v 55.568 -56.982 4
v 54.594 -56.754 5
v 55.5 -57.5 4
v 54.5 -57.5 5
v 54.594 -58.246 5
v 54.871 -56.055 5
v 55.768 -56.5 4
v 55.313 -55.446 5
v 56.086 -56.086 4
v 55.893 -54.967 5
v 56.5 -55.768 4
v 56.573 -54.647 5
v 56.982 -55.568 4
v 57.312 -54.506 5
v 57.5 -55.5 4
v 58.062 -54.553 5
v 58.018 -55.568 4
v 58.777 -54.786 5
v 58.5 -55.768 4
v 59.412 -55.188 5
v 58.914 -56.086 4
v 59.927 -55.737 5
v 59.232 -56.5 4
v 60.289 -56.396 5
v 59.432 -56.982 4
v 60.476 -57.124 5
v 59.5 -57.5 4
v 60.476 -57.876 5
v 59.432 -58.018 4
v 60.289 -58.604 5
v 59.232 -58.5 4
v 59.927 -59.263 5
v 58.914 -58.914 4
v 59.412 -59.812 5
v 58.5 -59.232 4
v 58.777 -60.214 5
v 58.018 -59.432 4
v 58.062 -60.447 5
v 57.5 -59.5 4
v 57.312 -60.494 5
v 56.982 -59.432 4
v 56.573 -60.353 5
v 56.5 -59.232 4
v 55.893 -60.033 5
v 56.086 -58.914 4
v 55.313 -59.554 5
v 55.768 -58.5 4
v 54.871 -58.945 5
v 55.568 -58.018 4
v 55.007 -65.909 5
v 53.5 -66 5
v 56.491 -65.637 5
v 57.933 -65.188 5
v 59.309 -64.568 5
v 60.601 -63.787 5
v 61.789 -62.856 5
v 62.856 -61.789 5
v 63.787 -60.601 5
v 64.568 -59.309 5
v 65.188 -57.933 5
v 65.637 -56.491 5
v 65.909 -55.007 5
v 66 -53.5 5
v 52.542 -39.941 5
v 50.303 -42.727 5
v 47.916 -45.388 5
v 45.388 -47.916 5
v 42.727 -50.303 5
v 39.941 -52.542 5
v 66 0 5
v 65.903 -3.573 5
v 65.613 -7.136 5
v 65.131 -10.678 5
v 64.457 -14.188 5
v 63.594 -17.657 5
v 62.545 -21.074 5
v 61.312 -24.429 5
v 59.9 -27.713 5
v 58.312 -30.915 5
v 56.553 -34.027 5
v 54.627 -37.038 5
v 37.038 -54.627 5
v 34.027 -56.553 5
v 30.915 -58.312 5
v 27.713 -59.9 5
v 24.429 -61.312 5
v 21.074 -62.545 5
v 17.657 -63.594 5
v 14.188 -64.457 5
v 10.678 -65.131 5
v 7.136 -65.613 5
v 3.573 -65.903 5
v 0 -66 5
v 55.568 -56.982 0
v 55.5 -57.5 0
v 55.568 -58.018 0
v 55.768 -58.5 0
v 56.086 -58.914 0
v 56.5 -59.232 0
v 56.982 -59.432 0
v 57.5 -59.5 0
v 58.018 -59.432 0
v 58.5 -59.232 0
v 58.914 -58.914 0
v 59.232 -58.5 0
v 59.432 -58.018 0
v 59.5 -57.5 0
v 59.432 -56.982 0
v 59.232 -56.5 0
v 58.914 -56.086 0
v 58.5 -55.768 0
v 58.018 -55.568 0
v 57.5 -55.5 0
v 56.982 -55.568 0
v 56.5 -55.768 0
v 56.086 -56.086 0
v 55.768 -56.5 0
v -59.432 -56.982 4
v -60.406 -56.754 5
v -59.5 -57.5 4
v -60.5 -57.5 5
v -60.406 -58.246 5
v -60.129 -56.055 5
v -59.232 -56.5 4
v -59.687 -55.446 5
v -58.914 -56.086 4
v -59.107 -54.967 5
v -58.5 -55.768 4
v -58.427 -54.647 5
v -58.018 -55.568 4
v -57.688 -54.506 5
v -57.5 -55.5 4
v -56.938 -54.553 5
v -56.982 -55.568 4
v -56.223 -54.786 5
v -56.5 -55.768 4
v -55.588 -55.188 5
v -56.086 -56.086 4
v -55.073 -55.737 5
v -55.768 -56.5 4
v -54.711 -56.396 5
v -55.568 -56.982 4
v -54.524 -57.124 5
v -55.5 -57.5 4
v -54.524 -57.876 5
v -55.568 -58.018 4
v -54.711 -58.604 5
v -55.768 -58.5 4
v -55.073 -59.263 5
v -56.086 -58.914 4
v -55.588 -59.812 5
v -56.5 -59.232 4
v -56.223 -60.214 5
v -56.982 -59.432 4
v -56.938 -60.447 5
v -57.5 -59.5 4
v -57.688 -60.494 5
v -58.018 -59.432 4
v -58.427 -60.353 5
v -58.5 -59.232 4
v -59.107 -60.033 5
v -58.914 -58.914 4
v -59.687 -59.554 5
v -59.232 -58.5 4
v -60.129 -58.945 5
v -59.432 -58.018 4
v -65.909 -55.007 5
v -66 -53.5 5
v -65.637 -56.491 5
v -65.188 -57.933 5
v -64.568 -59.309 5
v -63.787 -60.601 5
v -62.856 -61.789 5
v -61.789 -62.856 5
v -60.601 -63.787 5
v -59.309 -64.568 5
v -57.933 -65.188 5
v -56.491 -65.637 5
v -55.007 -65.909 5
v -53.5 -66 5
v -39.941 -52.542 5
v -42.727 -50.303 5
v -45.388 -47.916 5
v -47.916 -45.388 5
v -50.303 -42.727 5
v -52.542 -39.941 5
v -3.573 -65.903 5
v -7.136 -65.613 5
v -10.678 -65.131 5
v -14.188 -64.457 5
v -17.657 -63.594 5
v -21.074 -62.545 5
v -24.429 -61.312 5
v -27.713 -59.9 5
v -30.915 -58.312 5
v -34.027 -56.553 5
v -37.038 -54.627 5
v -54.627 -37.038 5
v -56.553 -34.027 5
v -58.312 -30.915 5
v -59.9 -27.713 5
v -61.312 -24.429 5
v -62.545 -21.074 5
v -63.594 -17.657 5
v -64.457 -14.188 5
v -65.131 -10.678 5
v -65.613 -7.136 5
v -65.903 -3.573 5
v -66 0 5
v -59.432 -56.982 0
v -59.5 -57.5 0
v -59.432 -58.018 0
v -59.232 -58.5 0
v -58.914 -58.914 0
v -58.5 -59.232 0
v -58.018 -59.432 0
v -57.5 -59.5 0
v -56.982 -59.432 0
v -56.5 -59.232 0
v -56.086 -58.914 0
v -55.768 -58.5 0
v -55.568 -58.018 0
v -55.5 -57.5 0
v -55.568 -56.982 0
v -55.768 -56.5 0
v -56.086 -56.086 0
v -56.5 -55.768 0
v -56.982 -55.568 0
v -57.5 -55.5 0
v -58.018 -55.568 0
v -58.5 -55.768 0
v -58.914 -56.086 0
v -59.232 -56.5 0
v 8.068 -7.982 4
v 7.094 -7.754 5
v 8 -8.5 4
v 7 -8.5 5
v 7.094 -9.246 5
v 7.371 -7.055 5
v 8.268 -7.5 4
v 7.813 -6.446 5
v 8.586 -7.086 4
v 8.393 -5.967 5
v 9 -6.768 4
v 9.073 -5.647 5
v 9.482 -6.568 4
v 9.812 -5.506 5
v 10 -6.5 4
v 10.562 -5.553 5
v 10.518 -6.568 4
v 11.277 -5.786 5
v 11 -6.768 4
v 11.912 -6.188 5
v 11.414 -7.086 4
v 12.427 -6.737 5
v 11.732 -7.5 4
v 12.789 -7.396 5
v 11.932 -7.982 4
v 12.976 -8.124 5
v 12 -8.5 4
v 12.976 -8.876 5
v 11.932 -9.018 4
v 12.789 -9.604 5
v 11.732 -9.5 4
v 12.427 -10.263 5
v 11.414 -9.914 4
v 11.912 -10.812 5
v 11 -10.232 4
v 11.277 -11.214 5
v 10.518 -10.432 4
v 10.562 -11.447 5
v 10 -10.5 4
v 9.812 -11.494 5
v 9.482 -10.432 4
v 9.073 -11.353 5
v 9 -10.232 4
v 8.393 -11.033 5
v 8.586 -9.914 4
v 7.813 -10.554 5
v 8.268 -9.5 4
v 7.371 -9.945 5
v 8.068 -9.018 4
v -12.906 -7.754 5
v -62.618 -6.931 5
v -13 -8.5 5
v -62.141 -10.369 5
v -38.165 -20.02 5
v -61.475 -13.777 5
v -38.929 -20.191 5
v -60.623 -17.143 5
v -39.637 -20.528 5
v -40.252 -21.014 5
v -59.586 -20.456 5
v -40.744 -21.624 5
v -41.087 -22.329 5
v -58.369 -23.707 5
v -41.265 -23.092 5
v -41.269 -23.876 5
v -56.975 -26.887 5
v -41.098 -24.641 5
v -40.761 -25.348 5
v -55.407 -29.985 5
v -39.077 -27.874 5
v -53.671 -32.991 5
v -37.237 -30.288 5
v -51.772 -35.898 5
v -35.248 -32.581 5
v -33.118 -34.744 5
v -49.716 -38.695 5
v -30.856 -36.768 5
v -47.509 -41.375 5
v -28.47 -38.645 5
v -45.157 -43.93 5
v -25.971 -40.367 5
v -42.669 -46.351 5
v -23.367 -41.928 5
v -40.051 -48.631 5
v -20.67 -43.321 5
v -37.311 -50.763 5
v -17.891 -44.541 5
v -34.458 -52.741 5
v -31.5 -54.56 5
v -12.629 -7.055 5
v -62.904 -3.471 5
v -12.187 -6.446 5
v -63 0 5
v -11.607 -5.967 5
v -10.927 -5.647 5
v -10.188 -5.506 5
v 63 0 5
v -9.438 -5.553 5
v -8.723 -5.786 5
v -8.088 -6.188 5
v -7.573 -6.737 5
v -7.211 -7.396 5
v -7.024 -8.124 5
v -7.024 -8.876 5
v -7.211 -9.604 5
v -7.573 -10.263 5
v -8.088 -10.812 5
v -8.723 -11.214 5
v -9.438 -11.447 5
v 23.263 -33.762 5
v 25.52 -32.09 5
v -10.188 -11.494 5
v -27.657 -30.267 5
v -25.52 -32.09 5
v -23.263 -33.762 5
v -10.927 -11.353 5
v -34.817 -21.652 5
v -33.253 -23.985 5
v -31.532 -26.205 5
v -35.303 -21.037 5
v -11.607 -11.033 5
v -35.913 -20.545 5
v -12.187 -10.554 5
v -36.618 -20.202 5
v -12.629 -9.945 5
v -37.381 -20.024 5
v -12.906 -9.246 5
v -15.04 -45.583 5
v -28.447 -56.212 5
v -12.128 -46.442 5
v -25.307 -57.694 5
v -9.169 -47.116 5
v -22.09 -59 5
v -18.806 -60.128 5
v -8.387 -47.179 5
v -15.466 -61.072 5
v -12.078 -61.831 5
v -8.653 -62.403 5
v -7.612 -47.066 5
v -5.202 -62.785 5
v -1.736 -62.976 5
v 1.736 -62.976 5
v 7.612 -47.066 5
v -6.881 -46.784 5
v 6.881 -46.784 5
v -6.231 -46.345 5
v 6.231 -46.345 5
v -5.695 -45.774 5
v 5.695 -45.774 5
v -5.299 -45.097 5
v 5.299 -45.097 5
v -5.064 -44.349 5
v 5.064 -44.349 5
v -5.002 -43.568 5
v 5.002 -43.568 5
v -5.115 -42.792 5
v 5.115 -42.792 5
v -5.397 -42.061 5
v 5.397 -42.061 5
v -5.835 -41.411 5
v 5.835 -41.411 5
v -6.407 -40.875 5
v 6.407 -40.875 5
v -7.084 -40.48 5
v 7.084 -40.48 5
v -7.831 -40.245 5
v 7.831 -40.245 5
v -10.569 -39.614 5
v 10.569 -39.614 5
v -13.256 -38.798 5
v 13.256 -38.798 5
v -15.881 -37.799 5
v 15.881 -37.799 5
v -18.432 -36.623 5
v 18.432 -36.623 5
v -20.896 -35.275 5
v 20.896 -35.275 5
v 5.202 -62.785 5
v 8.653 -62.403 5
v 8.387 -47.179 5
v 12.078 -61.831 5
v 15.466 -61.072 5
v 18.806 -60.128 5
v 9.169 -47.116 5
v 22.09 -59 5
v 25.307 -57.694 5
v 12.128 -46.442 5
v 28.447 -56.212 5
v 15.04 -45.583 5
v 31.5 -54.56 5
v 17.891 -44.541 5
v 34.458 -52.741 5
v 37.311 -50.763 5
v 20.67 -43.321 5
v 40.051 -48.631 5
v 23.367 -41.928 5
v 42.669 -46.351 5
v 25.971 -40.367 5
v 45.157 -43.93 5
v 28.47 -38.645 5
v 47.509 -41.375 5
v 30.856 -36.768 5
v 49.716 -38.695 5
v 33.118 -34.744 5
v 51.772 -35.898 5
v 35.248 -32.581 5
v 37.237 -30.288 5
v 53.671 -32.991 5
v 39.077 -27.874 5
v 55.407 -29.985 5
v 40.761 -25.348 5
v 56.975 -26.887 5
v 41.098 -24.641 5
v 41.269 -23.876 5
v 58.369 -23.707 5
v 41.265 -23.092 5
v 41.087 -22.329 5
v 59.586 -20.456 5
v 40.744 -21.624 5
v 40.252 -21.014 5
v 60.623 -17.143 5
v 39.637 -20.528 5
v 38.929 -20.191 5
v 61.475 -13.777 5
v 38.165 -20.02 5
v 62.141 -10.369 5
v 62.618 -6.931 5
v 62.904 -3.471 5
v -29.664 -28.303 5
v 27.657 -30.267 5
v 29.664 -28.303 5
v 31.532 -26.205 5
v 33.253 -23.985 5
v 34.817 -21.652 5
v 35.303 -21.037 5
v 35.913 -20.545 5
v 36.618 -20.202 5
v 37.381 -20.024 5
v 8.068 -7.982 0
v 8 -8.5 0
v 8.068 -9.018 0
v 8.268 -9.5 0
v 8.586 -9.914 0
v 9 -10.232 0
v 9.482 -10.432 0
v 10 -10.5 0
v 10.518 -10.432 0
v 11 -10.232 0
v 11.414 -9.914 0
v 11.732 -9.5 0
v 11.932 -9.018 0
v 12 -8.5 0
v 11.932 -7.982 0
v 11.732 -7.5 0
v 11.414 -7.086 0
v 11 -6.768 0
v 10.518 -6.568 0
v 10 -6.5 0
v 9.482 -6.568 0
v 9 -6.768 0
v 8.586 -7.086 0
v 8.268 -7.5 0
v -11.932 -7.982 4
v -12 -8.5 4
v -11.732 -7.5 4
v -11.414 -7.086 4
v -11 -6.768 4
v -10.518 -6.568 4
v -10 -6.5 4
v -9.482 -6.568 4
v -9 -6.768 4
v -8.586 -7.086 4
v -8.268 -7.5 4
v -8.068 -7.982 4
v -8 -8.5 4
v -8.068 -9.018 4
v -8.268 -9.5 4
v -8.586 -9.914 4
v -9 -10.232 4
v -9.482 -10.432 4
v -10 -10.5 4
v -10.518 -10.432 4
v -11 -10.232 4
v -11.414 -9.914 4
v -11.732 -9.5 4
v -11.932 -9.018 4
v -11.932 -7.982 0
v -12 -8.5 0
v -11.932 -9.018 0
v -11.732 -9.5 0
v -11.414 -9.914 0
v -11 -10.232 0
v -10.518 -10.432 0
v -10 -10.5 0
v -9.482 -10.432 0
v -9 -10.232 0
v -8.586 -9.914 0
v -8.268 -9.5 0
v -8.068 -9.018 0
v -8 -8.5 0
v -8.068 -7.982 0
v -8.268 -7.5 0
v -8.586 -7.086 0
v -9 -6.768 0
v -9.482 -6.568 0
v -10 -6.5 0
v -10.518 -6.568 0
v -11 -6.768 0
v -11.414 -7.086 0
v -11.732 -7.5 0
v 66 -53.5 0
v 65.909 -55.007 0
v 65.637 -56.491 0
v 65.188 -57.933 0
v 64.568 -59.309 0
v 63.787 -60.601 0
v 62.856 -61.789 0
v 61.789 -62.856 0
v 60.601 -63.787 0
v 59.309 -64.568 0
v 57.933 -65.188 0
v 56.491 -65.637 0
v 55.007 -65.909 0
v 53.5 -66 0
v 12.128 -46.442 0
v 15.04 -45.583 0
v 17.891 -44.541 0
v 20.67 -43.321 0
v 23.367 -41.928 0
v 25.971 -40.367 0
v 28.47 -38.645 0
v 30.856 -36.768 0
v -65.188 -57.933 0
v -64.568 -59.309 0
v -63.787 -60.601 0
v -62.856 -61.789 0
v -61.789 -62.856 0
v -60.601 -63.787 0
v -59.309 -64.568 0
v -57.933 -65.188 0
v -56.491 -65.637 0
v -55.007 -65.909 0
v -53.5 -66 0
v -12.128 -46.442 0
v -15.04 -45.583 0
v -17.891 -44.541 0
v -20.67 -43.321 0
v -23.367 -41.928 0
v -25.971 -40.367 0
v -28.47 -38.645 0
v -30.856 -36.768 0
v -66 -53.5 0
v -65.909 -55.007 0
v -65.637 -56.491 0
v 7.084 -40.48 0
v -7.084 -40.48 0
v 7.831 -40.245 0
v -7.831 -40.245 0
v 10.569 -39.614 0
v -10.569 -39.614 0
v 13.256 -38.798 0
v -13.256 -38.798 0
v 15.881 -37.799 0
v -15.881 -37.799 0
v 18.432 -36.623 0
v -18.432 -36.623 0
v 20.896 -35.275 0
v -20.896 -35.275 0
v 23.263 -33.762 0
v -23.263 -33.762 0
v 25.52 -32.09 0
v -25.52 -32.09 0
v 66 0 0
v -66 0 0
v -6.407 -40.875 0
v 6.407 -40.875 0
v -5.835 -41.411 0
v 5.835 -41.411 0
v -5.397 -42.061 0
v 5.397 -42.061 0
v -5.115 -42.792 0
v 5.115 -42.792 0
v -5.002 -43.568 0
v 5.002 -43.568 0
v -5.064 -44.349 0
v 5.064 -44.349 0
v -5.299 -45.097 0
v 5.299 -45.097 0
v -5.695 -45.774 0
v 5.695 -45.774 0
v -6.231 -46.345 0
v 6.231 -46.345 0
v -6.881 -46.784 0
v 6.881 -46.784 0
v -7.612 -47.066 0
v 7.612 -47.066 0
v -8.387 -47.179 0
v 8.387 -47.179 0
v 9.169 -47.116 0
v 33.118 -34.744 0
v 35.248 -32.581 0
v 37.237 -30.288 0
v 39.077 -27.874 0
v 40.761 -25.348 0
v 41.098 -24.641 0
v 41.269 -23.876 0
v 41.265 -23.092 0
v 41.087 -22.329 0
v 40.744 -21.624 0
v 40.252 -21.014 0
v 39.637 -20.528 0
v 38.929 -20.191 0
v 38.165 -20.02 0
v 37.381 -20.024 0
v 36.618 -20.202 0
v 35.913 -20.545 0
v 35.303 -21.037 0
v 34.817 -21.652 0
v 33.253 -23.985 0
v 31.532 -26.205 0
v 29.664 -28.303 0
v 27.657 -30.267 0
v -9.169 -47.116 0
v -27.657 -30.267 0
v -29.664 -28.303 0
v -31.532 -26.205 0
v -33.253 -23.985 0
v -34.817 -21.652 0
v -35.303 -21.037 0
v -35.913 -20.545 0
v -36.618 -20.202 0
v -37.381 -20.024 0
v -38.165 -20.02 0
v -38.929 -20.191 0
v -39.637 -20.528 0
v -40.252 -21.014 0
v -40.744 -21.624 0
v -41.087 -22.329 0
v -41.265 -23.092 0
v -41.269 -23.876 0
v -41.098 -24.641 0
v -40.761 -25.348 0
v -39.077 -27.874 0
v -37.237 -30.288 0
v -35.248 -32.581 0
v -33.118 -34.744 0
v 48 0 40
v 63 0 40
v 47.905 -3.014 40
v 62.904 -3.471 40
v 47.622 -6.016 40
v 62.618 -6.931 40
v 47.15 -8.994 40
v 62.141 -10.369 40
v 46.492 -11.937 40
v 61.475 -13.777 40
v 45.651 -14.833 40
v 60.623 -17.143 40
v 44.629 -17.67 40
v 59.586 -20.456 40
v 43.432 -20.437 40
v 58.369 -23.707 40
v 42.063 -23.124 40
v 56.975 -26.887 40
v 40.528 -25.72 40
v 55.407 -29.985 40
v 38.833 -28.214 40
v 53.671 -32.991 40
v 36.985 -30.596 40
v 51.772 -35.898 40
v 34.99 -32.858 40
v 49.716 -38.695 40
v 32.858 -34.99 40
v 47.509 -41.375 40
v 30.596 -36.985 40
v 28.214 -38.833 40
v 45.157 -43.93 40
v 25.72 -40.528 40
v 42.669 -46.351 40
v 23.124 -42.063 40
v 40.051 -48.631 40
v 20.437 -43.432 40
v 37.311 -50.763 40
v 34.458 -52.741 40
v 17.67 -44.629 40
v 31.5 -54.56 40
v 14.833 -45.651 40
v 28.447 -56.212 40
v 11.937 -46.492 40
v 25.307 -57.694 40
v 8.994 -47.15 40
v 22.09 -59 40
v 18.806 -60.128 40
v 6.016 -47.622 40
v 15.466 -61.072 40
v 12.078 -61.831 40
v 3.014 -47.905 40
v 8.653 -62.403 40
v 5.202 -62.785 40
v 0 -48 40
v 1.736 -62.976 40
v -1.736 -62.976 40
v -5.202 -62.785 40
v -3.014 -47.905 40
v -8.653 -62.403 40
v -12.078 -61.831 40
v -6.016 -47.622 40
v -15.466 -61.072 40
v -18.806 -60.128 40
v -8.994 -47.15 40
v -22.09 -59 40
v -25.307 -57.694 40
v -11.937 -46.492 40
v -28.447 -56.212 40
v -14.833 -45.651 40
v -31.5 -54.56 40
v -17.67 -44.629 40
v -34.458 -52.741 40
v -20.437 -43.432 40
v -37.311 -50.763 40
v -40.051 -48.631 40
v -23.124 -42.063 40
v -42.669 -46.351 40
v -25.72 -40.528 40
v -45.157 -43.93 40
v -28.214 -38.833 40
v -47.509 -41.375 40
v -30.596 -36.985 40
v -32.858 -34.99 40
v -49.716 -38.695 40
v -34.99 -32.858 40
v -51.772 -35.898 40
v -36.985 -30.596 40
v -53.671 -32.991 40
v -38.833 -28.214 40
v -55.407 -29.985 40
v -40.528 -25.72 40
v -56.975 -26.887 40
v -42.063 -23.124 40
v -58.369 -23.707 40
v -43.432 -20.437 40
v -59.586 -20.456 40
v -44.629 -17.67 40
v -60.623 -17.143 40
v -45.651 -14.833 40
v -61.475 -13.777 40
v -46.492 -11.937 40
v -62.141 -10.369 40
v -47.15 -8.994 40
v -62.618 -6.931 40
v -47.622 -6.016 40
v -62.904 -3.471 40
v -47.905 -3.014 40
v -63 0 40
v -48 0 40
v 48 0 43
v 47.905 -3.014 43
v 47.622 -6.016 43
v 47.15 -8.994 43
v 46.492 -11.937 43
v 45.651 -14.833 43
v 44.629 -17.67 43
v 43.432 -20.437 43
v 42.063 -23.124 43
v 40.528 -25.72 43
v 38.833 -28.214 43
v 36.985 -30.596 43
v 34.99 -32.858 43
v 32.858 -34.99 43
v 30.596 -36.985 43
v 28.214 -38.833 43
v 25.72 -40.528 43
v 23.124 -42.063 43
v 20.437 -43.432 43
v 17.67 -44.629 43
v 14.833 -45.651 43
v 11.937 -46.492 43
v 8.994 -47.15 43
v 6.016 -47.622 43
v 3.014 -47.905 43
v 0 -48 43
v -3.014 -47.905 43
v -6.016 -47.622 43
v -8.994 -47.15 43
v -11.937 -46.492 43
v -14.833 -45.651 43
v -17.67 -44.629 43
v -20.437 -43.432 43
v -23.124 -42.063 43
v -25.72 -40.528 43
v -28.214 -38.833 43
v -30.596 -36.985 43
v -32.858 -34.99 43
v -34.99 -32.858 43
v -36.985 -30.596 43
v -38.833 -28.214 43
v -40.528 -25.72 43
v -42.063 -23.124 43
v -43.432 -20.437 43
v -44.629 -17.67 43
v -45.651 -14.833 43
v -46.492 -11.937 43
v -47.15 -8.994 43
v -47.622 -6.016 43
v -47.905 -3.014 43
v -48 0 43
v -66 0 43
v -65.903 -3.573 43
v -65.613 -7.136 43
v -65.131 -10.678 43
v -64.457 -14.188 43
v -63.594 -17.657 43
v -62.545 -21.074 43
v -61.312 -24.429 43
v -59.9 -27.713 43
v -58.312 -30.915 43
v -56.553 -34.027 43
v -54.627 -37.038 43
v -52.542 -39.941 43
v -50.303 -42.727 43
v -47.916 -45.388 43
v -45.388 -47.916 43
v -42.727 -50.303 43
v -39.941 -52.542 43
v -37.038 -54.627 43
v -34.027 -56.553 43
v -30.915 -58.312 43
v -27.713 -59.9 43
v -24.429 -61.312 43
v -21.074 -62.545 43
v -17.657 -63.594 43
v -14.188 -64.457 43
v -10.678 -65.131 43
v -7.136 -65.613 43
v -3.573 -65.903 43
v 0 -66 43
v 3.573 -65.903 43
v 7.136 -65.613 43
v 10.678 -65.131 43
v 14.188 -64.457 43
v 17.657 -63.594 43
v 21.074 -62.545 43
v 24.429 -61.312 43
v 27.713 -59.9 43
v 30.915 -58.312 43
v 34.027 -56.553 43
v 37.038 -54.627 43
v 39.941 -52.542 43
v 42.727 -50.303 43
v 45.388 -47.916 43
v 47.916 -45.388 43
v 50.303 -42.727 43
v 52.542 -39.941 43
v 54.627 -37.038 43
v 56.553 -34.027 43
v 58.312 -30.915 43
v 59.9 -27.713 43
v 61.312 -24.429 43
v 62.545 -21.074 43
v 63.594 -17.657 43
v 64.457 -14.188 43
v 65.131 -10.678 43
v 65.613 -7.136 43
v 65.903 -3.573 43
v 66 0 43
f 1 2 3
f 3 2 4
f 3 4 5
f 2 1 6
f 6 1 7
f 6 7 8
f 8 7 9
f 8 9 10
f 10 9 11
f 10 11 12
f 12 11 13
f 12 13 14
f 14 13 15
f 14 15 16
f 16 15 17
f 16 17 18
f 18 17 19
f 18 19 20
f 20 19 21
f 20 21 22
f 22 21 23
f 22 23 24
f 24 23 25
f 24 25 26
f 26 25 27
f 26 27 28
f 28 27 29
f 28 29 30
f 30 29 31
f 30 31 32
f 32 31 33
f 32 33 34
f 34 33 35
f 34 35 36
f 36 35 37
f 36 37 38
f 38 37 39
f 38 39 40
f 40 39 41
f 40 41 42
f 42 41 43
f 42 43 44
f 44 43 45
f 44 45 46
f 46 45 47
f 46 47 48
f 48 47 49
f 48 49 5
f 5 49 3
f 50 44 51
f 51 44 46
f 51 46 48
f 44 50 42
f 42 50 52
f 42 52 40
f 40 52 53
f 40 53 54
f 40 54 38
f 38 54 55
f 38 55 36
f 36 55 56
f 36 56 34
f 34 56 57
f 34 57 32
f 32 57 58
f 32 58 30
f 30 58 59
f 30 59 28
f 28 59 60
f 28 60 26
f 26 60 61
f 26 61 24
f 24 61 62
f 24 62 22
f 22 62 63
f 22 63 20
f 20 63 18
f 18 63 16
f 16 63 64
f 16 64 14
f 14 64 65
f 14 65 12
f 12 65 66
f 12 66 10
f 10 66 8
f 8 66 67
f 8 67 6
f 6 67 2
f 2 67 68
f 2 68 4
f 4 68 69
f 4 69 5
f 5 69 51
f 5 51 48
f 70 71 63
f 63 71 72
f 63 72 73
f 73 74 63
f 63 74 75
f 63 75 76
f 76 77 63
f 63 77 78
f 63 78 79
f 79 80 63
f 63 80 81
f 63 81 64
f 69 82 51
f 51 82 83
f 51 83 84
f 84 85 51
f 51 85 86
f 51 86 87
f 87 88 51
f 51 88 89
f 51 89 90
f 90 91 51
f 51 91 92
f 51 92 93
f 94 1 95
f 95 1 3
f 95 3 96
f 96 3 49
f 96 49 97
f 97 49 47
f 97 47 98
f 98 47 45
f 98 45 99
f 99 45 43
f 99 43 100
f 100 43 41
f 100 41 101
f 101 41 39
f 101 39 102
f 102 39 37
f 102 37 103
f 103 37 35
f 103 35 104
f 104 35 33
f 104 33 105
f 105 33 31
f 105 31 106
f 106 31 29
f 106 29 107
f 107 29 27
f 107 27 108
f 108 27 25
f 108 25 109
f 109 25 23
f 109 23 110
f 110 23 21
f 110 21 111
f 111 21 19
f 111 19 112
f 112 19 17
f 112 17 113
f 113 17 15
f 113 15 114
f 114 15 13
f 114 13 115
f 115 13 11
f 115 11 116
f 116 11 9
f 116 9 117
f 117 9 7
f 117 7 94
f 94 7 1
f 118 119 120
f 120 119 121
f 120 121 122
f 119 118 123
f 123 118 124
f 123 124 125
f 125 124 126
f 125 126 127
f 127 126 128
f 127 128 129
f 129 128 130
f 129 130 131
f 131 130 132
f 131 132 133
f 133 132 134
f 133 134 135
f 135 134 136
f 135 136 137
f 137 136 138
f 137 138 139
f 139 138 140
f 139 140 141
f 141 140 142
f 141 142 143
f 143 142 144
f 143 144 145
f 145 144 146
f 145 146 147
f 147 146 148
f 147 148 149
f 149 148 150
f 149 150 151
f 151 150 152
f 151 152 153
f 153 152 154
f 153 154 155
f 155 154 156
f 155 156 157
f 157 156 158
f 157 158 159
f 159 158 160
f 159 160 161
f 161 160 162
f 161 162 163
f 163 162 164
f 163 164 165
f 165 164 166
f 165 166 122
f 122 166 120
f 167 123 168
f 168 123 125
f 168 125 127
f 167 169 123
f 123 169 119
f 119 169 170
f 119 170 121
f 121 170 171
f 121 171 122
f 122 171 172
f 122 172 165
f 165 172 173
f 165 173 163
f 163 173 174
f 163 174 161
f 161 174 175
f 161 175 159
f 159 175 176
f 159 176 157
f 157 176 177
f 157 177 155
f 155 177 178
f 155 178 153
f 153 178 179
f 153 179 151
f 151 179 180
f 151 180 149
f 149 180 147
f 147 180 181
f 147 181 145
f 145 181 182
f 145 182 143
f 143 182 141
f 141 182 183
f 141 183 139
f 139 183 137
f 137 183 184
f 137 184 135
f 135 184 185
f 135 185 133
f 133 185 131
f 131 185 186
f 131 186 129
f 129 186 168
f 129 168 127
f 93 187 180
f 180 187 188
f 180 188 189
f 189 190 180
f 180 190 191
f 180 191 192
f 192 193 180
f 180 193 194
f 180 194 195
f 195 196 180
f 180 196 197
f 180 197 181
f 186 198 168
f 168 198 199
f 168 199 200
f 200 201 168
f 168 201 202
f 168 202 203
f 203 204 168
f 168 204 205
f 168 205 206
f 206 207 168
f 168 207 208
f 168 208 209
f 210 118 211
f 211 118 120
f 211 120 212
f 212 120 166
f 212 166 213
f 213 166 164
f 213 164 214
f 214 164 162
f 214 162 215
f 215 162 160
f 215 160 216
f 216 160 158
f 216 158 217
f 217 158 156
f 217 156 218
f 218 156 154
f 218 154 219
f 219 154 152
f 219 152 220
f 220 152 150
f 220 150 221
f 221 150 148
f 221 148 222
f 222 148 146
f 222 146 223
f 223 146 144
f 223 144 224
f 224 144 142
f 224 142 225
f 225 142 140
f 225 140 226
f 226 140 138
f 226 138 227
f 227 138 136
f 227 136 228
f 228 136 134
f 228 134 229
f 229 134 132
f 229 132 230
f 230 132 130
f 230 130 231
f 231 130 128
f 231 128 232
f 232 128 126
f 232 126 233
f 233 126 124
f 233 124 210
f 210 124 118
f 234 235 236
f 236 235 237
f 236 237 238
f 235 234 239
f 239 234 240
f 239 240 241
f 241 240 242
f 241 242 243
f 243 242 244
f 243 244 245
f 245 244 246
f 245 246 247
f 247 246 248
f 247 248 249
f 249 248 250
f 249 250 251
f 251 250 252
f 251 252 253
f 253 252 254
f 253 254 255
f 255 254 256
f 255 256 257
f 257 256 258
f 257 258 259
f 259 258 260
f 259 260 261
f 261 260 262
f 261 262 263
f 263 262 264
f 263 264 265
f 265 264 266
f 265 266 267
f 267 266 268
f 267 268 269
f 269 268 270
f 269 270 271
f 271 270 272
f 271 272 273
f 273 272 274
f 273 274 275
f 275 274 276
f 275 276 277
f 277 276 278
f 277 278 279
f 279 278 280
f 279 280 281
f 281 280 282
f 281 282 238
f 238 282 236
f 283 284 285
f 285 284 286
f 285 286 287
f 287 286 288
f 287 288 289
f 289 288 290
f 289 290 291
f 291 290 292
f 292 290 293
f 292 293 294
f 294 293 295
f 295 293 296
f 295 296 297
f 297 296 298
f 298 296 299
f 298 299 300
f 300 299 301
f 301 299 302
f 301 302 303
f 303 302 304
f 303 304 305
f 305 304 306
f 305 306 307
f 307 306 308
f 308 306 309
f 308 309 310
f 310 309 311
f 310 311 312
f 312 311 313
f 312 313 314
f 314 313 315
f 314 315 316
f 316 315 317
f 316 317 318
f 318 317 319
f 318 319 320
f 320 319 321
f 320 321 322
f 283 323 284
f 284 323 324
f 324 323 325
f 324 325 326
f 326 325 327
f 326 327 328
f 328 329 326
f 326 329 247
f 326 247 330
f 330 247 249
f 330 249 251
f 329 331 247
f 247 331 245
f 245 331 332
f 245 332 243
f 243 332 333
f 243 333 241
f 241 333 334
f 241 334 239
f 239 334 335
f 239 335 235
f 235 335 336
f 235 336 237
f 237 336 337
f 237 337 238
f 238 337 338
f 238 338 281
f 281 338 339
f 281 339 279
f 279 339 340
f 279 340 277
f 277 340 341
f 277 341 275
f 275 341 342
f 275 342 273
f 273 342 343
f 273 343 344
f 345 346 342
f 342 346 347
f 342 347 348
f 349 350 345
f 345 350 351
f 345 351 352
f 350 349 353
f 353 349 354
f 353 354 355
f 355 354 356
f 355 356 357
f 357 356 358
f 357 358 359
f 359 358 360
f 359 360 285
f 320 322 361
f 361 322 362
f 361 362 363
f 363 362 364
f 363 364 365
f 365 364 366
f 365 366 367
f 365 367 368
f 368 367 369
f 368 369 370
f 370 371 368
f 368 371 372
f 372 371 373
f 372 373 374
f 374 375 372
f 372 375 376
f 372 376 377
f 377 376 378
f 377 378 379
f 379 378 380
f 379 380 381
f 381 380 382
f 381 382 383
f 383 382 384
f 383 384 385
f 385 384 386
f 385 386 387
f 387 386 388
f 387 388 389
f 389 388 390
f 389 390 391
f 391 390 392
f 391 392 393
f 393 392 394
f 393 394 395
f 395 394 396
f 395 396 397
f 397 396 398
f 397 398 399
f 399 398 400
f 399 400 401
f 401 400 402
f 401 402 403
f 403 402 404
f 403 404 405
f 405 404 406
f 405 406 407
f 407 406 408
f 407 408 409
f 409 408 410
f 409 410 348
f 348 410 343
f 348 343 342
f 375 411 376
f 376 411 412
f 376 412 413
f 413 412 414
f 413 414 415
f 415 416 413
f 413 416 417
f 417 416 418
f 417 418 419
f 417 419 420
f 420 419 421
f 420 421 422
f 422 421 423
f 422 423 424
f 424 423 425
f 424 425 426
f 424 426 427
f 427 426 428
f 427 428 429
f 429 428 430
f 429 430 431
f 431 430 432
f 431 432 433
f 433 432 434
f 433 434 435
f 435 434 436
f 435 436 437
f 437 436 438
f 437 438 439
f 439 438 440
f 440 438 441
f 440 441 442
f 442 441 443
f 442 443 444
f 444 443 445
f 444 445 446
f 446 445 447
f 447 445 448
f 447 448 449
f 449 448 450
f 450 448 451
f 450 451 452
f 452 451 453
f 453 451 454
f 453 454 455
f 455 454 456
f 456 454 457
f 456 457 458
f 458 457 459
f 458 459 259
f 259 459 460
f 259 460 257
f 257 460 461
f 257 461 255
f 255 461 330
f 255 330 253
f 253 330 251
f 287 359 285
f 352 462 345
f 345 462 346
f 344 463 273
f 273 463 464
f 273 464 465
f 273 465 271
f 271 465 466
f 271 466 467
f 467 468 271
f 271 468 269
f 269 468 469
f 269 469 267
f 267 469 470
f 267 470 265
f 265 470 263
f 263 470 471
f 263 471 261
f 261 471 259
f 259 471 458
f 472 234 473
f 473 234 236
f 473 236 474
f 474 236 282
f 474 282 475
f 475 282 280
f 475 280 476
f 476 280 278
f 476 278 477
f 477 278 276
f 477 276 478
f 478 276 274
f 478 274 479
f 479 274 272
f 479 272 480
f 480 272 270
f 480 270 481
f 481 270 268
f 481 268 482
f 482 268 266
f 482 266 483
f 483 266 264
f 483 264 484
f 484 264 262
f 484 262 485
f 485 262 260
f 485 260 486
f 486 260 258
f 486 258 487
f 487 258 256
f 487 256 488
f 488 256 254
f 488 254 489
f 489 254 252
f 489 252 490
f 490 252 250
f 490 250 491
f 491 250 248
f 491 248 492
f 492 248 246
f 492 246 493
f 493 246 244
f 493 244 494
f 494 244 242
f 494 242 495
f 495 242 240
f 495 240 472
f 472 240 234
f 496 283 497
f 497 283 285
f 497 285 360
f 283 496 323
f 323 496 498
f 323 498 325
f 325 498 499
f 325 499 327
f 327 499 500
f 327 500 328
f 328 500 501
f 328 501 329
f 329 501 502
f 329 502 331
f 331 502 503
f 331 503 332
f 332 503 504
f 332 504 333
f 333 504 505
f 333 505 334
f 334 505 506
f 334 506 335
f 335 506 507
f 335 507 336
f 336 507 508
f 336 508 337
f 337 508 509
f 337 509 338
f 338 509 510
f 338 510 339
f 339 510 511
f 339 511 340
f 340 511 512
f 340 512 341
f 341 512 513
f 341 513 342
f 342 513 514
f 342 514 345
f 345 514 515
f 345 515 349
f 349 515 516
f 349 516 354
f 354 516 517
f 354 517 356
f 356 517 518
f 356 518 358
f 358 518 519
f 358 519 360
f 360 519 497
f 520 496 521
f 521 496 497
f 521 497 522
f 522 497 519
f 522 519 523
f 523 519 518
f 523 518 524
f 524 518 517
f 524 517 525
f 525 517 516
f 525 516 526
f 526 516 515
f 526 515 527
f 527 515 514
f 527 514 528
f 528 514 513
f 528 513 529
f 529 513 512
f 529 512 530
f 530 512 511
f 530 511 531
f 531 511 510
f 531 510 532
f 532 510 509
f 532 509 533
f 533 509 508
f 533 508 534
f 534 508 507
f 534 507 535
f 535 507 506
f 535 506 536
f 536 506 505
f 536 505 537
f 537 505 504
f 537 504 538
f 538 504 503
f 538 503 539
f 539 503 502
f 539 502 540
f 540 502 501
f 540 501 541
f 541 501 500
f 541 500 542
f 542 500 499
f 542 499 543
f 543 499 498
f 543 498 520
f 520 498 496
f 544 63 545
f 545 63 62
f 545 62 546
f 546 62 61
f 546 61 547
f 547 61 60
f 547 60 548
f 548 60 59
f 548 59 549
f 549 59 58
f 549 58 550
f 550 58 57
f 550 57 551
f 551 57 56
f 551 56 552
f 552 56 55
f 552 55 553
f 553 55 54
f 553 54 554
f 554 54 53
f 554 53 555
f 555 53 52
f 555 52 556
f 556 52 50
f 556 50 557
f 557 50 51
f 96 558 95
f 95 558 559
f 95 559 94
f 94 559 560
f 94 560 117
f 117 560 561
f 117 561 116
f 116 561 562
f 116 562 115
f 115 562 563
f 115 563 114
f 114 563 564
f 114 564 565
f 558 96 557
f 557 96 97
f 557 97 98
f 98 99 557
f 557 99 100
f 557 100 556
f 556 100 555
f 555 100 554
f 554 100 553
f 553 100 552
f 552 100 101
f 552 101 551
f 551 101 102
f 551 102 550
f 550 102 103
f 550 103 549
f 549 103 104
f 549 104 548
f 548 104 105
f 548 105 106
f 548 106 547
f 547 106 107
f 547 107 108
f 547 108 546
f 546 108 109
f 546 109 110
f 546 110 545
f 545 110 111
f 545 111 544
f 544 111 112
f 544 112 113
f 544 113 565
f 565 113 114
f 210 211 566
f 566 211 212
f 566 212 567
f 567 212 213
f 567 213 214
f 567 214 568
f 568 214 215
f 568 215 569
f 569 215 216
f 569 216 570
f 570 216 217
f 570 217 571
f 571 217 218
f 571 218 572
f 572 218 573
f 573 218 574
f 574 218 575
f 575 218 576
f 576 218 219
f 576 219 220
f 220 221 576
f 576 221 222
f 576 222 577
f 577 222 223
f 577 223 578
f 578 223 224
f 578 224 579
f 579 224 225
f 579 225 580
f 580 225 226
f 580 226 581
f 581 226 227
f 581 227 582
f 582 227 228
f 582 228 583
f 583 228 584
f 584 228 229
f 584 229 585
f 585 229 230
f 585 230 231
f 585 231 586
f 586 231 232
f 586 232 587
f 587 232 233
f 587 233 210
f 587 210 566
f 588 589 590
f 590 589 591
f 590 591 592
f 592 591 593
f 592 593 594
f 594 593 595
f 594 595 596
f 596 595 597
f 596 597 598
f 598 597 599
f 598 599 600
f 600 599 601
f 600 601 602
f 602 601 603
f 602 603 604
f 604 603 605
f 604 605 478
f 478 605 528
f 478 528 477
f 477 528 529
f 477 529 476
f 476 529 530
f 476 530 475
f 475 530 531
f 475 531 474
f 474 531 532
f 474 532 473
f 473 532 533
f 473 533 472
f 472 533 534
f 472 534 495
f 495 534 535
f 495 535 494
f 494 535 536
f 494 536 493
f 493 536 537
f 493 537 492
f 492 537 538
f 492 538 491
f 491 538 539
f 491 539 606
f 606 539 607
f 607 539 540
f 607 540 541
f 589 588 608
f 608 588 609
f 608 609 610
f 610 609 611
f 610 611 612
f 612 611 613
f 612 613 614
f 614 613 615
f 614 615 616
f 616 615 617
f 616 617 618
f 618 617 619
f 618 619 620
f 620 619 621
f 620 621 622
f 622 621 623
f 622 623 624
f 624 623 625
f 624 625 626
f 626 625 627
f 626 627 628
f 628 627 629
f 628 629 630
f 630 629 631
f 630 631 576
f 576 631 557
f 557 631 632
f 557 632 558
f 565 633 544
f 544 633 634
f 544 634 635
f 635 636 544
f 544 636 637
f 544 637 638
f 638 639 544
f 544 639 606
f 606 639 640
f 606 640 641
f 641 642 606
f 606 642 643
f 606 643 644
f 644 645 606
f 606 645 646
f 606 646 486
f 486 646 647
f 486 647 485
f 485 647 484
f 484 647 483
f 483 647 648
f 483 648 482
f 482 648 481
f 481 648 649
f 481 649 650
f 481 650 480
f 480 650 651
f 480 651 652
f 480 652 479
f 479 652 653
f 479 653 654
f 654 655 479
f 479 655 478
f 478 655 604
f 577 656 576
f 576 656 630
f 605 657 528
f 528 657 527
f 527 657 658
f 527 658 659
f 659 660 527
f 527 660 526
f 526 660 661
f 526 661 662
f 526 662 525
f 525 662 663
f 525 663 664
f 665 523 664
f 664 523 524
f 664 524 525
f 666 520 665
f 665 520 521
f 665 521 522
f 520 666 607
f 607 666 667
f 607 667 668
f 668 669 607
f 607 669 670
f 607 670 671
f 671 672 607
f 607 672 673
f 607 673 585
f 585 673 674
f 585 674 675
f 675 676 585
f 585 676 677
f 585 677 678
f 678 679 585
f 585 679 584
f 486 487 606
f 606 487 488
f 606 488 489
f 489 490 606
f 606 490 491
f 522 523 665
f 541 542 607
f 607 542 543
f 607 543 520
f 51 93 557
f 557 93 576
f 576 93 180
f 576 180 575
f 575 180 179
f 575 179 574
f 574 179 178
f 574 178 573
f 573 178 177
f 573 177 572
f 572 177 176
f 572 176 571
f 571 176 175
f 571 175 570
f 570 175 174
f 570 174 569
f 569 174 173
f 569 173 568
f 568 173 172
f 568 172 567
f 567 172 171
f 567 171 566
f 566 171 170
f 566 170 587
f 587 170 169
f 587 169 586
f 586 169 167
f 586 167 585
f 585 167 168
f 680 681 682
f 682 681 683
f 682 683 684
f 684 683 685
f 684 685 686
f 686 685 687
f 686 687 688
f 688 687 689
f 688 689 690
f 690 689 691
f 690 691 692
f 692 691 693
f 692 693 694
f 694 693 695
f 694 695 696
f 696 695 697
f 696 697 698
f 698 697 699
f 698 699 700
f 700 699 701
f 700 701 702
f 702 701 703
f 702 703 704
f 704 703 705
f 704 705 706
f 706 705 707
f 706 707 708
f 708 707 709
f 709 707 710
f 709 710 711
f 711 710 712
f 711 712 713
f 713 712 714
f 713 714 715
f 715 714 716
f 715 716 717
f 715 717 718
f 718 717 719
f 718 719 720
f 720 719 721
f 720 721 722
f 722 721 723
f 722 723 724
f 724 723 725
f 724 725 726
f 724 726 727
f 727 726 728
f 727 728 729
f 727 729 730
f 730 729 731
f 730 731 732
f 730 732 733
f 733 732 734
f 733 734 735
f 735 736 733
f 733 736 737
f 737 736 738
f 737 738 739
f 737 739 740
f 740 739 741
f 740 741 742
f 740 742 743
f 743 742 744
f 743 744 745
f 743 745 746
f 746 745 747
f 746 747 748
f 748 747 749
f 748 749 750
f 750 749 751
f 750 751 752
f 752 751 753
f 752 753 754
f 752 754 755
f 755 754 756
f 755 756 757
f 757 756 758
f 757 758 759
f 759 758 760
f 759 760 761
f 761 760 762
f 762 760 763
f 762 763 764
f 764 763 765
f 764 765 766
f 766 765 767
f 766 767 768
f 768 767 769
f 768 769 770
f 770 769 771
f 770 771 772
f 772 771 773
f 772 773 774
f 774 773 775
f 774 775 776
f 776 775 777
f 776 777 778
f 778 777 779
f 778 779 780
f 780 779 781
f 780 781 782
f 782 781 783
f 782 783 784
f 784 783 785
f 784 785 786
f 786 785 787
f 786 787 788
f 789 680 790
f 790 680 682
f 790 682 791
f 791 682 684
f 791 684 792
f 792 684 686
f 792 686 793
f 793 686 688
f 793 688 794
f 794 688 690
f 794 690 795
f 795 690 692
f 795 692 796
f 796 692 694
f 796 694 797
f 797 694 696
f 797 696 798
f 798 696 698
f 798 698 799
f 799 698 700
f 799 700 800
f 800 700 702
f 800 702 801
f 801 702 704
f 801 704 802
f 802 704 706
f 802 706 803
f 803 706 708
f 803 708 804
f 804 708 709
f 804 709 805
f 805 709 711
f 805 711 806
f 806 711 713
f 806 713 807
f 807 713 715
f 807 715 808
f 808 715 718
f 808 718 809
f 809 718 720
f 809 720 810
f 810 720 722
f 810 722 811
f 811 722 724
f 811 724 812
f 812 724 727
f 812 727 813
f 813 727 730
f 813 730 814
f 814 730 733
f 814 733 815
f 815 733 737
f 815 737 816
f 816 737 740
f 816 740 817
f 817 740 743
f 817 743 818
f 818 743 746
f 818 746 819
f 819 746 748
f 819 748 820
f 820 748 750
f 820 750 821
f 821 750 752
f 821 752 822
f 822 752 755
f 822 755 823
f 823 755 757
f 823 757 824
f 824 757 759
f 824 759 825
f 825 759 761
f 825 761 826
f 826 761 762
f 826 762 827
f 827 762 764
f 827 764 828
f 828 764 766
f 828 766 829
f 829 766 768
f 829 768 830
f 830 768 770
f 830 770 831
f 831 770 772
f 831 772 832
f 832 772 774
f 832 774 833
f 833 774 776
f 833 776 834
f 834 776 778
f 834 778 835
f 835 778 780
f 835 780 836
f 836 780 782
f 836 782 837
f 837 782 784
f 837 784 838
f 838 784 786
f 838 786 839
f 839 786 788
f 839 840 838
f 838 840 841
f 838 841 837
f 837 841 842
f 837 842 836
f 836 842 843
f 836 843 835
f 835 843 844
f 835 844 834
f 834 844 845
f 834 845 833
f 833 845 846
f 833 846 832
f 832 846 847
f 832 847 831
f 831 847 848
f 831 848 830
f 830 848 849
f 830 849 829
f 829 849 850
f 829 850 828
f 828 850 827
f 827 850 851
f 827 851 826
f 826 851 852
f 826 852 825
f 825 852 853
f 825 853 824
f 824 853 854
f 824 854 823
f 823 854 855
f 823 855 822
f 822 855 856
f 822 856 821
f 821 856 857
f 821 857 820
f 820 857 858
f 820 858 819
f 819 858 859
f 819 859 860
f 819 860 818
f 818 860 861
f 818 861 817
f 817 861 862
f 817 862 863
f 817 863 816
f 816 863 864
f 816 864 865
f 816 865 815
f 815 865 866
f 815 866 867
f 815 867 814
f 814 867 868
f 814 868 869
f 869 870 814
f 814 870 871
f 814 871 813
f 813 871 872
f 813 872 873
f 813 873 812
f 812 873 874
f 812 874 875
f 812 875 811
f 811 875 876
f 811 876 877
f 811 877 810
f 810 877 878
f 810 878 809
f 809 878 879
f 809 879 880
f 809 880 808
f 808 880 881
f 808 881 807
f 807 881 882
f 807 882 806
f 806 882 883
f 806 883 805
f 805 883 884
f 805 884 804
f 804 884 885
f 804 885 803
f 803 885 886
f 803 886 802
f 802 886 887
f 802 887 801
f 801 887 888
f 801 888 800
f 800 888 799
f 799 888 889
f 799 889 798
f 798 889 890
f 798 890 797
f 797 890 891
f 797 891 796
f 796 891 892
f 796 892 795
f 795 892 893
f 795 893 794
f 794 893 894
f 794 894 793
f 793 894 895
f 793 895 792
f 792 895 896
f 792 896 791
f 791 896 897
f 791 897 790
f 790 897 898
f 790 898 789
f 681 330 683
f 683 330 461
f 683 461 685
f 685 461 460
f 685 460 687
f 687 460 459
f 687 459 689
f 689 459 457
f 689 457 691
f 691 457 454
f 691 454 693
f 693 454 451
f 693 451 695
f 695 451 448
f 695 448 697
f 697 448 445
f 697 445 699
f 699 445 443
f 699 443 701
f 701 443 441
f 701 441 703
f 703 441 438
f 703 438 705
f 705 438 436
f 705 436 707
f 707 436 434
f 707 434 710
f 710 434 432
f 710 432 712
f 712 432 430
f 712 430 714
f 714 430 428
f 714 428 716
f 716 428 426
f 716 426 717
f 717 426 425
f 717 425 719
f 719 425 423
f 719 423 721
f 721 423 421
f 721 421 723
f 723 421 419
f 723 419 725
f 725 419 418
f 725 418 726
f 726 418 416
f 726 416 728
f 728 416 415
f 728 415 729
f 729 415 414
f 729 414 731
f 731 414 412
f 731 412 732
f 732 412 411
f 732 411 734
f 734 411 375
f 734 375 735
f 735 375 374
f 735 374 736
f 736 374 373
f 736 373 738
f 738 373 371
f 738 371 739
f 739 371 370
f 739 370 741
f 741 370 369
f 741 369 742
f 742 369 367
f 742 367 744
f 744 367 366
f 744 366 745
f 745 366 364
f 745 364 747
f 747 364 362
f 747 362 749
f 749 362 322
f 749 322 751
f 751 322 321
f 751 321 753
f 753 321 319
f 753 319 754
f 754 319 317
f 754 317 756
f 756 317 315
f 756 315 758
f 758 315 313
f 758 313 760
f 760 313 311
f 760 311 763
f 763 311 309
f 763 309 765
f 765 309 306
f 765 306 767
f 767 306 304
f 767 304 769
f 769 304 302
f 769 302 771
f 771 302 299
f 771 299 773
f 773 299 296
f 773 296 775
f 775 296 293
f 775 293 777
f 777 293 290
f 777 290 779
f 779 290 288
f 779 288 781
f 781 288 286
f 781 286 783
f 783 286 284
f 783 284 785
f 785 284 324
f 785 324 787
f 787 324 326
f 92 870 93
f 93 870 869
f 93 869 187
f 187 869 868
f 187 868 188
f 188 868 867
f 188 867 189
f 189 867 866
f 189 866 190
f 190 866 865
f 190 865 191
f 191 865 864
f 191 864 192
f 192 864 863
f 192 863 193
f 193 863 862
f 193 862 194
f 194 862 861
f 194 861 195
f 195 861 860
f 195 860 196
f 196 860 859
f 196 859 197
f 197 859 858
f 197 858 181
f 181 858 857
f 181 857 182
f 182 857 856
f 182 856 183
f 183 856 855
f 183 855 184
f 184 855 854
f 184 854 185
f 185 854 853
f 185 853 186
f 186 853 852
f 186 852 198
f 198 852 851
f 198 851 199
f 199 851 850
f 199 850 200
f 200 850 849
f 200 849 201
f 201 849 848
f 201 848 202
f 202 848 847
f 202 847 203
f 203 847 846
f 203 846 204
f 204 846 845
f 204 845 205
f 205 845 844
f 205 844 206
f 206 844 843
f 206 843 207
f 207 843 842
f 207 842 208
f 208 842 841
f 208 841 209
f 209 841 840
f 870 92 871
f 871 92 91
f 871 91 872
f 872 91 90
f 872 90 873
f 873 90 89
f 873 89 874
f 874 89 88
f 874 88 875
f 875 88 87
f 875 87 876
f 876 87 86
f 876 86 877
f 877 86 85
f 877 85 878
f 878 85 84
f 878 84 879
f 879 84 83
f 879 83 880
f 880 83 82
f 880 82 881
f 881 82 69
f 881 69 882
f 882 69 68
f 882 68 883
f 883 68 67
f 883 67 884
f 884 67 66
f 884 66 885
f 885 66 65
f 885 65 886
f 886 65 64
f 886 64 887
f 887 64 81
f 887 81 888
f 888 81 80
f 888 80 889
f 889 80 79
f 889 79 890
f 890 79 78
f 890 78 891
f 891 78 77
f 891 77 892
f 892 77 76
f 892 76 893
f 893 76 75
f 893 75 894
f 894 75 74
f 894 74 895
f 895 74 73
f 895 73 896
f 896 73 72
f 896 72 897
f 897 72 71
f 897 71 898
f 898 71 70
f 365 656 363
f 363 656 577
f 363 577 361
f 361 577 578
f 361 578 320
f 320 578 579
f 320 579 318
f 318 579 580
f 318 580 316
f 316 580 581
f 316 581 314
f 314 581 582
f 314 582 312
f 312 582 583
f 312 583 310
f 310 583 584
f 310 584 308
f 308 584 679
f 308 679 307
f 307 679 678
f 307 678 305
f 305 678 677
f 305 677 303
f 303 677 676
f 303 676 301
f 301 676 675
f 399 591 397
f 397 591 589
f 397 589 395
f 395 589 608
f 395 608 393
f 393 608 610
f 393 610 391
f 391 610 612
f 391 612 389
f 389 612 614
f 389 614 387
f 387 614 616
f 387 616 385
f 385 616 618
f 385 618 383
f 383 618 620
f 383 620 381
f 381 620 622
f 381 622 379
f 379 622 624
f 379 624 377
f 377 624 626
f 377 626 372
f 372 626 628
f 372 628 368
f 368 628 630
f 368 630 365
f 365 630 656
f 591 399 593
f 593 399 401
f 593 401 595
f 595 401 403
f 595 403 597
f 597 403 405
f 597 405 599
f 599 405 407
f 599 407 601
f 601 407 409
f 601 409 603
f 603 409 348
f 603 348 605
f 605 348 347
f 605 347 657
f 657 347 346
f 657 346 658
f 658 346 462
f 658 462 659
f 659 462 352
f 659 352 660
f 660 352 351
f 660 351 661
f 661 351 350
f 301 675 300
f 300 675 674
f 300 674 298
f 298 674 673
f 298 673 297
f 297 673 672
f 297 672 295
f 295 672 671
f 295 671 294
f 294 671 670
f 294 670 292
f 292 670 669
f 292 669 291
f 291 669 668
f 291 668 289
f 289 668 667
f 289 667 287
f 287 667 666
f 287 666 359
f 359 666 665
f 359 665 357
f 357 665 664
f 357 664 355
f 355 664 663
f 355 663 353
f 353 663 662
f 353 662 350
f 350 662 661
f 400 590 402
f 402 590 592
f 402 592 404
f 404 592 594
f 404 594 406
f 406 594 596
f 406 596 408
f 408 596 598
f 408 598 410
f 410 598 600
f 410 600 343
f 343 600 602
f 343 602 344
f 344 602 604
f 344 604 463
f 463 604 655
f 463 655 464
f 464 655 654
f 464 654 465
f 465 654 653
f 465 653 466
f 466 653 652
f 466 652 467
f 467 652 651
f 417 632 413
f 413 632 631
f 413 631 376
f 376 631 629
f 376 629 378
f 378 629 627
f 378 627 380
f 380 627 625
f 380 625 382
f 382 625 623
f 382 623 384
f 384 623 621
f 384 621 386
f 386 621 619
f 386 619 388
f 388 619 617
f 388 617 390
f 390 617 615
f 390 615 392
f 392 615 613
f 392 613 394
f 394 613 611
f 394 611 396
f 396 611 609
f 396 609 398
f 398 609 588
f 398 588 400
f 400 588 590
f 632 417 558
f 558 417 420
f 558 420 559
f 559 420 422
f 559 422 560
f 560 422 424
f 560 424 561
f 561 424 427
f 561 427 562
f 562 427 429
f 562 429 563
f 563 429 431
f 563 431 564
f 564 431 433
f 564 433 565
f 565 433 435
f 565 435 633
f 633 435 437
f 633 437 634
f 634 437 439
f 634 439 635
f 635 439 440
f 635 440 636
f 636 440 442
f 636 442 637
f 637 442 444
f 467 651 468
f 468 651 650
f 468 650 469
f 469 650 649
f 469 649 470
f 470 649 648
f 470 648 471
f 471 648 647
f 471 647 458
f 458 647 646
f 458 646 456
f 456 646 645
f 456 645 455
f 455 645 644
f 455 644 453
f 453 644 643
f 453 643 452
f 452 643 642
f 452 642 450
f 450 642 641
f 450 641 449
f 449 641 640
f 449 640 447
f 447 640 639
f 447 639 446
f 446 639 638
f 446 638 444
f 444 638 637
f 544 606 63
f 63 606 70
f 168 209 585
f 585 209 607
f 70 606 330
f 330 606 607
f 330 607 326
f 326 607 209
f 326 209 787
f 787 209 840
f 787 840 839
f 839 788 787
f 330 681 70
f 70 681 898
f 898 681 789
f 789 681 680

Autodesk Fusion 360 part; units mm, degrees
sketch "Sketch1" plane through (0, 0, 0) normal (0, 0, 1) x (1, 0, 0)
  line L0 (66, 0) -> (-66, 0)
  arc A0 (-66, 0) -> (66, 0) centre (0, 0) ccw
  arc A1 (-63, 0) -> (63, 0) centre (0, 0) ccw
  line L1 (0, -66) -> (-66, -66)
  line L2 (-66, 0) -> (-66, -66)
  circle A2 centre (-57.5, -57.5) radius 2
  line L3 (0, 1.75) -> (0, 22.5)
  line L4 (66, 0) -> (66, -66)
  circle A3 centre (57.5, -57.5) radius 2
  line L5 (0, -66) -> (66, -66)
  arc A4 (-48, 0) -> (48, 0) centre (0, 0) ccw
  circle A5 centre (-10, -8.5) radius 2
  circle A6 centre (10, -8.5) radius 2
  arc A7 (-35.7911, -20) -> (35.7911, -20) centre (0, 0) ccw
  line L6 (-43.6348, -20) -> (-35.7911, -20)
  line L7 (35.7911, -20) -> (43.6348, -20)
  line L8 (-5, -40.694) -> (-5, -47.7389)
  line L9 (5, -40.694) -> (5, -47.7389)
  dimension "d2" = 126
  dimension "d4" = 4
  dimension "d7" = -15
  dimension "d9" = 4
  dimension "d10" = 4
  dimension "d11" = 8.5
  dimension "d12" = 8.5
  dimension "d13" = 56
  dimension "d14" = 56
extrude "Extrude1" add sketch "Sketch1" along normal blind 5 contours L0 A0 A1 | A0 L4 L5 | L0 A1 A4 | A0 L1 L2 | L0 A4 A7 L6 L7 | A4 A7 L8 L9
fillet "Fillet2" radius 3.5 8 edges at (35.7911, -20, 2.5) (43.6348, -20, 2.5) (5, -47.7389, 2.5) (5, -40.694, 2.5) (-43.6348, -20, 2.5) (-35.7911, -20, 2.5) (-5, -40.694, 2.5) (-5, -47.7389, 2.5)
extrude "Extrude2" add sketch "Sketch1" along normal blind 40 contours L0 A0 A1
extrude "Extrude3" add sketch "Sketch1" along normal blind 43 and the other way blind -40 contours L0 A0 A1 | L0 A1 A4
fillet "Fillet1" radius 12.5 2 edges at (-66, -66, 2.5) (66, -66, 2.5)
chamfer "Chamfer1" distance 1 angle 45 4 edges at (-11.8647, -7.7768, 5) (8.1353, -7.7768, 5) (-59.3647, -56.7768, 5) (55.6353, -56.7768, 5)
